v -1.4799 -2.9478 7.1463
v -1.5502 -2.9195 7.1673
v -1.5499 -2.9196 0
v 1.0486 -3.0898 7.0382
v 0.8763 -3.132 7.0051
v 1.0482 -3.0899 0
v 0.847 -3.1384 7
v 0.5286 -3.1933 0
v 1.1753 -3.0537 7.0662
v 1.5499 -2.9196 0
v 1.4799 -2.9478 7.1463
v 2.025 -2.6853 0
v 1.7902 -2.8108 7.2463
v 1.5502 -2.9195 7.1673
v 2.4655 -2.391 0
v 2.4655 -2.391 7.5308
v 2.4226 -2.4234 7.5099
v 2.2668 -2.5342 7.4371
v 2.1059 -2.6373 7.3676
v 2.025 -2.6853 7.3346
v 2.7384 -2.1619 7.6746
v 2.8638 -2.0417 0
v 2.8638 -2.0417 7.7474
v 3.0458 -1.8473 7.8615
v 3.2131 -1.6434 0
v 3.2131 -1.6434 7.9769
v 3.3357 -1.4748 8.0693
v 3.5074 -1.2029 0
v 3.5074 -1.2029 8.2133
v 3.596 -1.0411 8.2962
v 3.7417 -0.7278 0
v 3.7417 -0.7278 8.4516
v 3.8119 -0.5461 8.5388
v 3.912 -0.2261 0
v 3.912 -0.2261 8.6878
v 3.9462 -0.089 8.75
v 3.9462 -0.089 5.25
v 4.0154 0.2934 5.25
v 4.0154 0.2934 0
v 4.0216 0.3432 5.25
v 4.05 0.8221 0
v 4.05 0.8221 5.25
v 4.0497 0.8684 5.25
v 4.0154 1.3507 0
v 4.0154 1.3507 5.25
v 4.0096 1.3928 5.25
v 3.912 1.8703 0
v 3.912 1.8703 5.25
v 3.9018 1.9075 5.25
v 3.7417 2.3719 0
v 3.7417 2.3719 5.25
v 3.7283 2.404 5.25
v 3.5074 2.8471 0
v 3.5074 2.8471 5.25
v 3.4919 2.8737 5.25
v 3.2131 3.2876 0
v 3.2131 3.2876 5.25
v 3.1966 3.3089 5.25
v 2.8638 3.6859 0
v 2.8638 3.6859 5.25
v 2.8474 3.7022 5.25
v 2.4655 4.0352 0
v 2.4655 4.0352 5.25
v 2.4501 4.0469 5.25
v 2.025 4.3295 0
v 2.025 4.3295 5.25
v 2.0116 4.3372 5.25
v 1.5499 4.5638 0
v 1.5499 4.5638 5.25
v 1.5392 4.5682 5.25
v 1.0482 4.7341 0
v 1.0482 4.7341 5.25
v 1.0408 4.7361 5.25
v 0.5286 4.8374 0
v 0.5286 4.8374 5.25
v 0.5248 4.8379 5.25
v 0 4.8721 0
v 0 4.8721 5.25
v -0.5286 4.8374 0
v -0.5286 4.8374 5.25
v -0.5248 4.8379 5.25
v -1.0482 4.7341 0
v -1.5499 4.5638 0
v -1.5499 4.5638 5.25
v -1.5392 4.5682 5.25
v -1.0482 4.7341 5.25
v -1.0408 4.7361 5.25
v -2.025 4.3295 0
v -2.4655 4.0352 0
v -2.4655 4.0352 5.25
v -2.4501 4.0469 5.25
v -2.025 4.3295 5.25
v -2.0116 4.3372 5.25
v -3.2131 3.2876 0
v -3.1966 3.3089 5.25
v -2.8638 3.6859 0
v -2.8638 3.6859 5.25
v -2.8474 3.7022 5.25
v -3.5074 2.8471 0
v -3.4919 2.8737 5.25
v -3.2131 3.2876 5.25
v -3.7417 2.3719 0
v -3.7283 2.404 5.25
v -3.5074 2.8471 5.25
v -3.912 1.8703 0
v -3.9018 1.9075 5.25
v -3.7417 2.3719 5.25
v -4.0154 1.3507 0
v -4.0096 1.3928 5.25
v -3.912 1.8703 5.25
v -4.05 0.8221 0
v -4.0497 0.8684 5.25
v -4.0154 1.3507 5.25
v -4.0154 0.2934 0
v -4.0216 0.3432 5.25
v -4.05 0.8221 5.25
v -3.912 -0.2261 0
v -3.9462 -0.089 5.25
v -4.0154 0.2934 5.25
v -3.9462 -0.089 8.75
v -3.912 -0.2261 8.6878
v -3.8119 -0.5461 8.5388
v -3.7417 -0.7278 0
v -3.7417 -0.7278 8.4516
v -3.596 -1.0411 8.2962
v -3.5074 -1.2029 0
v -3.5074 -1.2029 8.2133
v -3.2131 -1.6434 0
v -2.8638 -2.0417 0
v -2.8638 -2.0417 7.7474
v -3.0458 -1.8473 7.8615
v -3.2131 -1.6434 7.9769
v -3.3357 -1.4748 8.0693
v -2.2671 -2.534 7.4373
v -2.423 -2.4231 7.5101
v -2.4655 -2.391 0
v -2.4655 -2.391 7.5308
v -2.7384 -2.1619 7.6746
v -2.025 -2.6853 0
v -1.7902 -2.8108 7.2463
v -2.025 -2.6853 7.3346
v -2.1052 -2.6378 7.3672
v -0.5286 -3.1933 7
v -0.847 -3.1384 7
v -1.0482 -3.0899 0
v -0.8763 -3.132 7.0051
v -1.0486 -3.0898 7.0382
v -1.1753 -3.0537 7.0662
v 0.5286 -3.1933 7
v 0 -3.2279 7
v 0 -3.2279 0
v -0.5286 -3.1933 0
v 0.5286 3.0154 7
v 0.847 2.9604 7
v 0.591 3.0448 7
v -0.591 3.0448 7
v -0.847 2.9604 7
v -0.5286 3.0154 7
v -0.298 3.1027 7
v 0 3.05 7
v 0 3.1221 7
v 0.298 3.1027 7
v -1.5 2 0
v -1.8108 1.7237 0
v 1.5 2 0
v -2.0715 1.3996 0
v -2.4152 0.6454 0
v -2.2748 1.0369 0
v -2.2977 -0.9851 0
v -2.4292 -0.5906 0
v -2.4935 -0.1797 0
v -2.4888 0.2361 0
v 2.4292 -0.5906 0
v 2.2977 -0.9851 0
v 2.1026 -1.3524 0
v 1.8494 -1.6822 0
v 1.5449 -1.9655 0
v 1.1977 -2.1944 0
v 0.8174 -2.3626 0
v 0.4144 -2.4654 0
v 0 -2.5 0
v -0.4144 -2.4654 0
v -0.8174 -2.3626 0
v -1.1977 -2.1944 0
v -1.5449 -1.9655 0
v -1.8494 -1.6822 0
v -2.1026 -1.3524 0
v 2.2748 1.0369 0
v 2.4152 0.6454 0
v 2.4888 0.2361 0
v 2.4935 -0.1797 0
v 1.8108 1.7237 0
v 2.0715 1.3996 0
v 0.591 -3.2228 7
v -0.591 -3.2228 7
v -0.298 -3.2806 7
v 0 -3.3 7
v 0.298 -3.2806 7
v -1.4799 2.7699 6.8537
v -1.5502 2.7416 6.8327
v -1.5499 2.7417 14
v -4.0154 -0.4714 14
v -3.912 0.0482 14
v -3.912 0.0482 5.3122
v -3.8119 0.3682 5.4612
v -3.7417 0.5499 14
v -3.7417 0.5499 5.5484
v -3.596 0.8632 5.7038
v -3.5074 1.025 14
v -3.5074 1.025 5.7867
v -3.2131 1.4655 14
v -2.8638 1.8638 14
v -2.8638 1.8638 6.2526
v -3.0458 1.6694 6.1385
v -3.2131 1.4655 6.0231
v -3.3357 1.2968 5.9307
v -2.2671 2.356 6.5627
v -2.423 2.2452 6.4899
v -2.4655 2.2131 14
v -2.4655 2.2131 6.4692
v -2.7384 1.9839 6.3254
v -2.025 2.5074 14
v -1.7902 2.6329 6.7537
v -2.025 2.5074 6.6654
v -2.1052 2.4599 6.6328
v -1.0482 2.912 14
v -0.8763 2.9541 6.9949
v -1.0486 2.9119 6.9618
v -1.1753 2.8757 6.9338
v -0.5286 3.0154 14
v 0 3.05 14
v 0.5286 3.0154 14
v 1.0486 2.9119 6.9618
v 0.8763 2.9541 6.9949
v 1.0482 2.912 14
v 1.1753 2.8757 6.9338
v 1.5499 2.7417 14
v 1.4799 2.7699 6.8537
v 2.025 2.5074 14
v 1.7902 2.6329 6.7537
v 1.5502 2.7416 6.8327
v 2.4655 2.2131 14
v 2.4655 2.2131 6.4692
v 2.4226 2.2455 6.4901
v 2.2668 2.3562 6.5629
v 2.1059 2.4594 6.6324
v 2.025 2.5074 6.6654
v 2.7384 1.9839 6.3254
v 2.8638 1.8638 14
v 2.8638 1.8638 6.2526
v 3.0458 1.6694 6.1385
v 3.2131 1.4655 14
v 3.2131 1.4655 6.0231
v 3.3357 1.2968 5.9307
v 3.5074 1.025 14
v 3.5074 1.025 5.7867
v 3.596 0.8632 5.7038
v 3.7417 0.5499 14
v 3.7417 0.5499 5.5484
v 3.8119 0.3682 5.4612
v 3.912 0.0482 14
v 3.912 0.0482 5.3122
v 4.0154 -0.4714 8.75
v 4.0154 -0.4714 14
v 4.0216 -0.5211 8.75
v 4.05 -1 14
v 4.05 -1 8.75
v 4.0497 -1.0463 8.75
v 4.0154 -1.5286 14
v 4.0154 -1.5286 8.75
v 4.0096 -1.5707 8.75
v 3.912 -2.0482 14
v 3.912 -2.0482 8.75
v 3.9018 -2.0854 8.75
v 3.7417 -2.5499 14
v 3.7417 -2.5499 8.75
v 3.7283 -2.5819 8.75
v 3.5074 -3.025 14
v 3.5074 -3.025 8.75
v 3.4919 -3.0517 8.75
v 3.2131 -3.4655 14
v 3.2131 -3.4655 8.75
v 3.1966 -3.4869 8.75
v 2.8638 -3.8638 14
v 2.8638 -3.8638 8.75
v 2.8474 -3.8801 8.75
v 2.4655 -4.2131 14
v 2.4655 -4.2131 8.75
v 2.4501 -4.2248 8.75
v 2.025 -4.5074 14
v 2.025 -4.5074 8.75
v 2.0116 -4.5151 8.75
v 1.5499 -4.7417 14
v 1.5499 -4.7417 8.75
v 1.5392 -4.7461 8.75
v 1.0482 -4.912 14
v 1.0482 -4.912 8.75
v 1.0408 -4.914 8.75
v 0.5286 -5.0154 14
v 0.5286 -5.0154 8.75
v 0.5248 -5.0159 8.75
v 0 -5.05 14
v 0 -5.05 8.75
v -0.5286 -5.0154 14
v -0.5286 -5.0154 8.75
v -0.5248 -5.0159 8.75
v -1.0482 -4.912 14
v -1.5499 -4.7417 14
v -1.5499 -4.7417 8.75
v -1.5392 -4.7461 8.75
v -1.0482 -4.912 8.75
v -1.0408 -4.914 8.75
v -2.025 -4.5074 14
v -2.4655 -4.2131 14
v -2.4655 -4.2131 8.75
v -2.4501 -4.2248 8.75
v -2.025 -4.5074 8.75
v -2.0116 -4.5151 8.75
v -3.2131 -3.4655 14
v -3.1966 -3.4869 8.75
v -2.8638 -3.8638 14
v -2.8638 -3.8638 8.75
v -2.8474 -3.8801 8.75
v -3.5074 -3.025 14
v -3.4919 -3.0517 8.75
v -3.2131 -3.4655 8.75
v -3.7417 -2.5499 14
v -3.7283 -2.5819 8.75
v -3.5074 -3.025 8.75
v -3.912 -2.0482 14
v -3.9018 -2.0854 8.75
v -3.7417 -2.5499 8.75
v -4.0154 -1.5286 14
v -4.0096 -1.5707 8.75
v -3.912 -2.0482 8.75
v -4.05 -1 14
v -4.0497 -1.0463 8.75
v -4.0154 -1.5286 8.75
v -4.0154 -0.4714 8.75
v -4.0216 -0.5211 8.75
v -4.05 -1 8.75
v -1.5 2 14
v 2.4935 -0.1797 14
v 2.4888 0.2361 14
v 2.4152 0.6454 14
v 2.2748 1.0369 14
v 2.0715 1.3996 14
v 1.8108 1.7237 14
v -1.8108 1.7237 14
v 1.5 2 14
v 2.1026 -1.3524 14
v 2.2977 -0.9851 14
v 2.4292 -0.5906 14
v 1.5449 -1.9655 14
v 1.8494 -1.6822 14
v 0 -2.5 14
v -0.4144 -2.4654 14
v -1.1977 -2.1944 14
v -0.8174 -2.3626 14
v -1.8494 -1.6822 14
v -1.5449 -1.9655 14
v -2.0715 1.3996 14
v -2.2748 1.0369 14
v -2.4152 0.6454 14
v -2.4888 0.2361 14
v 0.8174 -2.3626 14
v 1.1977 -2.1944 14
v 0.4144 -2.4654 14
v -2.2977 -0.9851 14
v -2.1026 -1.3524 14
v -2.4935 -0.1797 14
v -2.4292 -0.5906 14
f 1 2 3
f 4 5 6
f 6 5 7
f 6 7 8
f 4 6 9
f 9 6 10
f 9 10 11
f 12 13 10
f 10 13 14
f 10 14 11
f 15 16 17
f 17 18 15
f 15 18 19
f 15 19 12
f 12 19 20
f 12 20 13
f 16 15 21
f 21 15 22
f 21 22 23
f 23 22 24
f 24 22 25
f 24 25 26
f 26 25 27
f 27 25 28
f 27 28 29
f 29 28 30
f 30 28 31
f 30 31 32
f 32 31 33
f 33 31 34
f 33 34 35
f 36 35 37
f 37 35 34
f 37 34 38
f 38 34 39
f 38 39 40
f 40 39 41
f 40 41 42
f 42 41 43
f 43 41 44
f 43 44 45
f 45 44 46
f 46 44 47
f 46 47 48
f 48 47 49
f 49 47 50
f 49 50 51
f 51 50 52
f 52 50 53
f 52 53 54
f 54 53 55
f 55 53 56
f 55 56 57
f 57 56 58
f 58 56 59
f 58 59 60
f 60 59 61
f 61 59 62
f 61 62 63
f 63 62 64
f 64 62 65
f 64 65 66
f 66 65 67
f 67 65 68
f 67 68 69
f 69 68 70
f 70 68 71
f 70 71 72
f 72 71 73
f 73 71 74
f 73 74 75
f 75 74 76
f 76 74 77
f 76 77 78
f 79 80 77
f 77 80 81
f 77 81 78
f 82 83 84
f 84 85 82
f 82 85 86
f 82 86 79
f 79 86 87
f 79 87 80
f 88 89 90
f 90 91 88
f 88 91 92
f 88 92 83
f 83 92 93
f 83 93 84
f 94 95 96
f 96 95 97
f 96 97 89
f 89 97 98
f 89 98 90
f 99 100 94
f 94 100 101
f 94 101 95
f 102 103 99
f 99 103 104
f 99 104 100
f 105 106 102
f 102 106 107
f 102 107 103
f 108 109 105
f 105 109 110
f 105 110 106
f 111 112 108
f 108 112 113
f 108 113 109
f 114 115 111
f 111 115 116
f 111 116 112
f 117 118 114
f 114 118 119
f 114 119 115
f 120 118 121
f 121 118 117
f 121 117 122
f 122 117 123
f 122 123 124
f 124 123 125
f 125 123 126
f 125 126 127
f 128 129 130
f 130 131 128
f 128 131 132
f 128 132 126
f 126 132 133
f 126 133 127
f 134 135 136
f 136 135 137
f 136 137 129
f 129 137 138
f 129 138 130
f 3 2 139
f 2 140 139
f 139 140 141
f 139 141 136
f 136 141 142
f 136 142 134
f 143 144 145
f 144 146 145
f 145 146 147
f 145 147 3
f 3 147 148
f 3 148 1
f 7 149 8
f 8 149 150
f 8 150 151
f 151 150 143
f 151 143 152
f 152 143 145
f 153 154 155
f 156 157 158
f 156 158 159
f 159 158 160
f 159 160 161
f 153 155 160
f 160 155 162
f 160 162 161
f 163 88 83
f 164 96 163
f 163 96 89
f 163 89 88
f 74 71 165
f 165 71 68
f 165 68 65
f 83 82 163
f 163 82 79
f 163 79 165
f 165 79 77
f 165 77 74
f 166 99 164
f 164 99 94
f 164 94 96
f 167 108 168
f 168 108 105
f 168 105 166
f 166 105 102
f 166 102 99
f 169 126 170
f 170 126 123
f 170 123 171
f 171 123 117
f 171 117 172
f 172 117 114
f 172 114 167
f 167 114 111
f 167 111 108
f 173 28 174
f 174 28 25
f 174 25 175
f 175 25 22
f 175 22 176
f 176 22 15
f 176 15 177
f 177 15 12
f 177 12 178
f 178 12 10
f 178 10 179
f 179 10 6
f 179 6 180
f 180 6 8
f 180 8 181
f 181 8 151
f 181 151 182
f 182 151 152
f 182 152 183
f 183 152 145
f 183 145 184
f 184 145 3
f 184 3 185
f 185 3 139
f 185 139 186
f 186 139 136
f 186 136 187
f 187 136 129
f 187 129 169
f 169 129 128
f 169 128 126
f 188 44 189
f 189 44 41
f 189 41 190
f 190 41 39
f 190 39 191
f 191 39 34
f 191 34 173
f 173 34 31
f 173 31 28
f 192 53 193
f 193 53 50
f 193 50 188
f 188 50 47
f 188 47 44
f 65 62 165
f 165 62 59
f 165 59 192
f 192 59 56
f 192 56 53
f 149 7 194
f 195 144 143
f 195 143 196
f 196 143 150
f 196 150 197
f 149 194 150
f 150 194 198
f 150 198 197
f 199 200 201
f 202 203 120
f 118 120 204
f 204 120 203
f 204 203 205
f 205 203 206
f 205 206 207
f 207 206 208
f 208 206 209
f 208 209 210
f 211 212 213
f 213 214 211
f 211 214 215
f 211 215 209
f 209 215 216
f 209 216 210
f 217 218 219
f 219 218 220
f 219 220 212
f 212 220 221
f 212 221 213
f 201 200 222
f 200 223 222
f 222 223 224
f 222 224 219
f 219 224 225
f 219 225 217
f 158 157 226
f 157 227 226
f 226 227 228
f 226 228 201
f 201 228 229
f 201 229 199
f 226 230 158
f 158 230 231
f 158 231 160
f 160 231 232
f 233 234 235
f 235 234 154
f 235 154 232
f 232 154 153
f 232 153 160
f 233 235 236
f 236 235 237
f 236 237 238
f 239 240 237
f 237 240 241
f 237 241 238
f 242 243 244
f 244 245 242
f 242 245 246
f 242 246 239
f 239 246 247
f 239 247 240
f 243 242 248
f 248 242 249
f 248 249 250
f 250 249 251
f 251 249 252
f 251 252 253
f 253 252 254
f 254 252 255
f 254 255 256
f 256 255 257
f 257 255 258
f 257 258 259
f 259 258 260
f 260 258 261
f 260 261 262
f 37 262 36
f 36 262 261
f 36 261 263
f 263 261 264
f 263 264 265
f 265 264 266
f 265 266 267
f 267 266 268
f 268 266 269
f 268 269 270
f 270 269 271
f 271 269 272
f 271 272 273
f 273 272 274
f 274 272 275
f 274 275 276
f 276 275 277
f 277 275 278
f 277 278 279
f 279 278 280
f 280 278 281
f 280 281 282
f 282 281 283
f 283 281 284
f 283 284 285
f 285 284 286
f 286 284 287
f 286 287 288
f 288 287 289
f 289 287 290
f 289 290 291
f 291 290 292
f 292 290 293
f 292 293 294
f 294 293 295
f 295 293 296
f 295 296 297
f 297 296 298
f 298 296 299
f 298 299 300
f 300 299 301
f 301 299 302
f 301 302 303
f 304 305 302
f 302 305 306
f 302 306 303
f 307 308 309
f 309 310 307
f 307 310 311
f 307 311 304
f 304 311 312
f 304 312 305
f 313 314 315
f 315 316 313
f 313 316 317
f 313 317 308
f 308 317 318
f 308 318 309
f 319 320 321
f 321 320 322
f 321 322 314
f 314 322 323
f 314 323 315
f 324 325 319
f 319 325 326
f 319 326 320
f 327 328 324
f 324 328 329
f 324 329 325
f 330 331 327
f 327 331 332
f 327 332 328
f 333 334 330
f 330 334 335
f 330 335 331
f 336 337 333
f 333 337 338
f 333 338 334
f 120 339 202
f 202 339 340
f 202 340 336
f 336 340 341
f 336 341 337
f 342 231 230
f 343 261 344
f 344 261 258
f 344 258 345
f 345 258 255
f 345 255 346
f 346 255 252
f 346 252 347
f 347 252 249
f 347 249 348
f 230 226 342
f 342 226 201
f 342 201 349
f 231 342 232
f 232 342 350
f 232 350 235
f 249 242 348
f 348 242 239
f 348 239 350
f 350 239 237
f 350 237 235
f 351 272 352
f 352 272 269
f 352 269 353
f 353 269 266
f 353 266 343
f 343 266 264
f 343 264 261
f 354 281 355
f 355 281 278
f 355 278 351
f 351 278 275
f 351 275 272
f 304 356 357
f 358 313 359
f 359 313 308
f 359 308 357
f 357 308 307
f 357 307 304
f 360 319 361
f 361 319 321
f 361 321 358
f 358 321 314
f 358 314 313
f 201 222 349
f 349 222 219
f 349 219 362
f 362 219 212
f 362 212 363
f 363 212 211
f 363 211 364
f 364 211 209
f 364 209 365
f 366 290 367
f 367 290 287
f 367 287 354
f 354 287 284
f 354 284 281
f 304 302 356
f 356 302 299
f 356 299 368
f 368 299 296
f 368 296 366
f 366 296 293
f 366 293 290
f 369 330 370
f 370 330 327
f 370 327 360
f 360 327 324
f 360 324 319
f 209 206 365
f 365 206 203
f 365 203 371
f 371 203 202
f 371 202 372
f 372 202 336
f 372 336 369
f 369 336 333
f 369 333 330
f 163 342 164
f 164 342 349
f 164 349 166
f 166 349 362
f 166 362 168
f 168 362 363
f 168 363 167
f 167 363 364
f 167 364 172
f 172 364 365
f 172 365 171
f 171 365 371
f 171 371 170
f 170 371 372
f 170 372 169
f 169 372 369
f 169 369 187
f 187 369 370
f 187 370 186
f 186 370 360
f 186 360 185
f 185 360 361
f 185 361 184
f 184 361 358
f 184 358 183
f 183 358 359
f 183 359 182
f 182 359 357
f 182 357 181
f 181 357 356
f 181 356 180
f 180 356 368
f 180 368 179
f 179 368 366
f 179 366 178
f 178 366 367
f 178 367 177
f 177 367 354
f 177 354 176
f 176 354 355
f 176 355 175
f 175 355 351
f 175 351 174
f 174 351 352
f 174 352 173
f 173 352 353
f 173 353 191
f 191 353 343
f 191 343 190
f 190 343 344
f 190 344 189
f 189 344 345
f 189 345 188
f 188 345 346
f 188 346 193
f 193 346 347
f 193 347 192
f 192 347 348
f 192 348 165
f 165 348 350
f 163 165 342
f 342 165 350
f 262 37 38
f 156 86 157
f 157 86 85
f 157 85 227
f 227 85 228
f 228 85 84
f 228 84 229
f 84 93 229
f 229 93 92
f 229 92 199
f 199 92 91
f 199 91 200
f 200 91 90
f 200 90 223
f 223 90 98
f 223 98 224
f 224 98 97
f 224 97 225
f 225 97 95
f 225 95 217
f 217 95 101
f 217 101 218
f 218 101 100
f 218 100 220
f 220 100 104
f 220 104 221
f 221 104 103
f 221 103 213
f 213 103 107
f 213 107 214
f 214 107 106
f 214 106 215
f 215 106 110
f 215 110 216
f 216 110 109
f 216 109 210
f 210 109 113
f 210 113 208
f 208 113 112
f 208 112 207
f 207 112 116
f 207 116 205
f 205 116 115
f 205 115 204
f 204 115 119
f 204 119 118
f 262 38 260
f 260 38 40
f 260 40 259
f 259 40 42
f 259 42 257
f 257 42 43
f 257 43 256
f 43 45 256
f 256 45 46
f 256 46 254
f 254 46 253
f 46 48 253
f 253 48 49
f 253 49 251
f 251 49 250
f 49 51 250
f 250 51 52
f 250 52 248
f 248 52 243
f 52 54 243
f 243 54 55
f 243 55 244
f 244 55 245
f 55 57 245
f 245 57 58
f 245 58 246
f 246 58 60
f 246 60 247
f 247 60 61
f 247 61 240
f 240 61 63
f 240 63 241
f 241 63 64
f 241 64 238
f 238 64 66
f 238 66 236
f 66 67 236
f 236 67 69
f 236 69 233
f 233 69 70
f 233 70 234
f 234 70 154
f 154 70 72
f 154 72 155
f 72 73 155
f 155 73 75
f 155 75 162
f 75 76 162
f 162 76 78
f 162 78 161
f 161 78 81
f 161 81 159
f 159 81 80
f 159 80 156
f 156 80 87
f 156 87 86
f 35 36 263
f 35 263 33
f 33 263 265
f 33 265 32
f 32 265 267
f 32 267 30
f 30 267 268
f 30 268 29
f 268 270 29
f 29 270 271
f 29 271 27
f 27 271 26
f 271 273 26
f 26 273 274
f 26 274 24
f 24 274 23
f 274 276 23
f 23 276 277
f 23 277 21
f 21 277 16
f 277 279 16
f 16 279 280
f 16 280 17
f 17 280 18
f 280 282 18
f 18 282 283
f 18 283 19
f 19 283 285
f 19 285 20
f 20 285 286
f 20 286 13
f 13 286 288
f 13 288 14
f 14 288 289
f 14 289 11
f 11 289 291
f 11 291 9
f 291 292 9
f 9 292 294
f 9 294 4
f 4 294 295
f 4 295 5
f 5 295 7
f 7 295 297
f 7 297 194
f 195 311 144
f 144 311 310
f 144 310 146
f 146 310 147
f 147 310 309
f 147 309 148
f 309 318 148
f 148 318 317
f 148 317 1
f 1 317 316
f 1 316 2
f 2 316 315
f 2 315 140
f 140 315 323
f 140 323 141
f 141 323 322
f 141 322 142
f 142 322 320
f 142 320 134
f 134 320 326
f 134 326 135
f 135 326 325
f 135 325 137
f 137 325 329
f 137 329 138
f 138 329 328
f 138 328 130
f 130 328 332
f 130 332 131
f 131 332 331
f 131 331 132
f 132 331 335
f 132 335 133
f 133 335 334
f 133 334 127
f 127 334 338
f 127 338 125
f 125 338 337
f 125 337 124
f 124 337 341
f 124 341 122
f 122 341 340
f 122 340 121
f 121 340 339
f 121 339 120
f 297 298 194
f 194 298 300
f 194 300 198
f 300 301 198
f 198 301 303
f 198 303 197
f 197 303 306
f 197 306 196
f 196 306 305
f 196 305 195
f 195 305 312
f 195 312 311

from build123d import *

# Parameters (mm, degrees)
ESQUISSE1_R             = 4.05
BOSS_EXTRU_1_DEPTH      = 7
ESQUISSE2_R             = 4.05
BOSS_EXTRU_2_DEPTH      = 7
ENL_V_MAT_EXTRU_1_DEPTH = 16.424169346
CHANFREIN2_SIZE         = 1.75
CHANFREIN4_SIZE         = 1.75


with BuildPart() as part:
    # Esquisse1 → Boss.-Extru.1 (new body)
    with BuildSketch(Plane.XY):
        with Locations((0, 0.822072072)):
            Circle(ESQUISSE1_R)
    extrude(amount=BOSS_EXTRU_1_DEPTH)

    # Esquisse2 → Boss.-Extru.2 (add)
    with BuildSketch(Plane.XY.offset(7)):
        with Locations(Location((0, -1, 0), (0, 0, 167.000228446))):
            Circle(ESQUISSE2_R)
    extrude(amount=BOSS_EXTRU_2_DEPTH)

    # Esquisse3 → Enlèv. mat.-Extru.1 (cut, through all)
    with BuildSketch(Plane.XY.offset(14)):
        with BuildLine():
            Line((-1.5, 2), (1.5, 2))
            ThreePointArc((1.5, 2), (0, -2.5), (-1.5, 2))
        make_face()
    extrude(amount=-ENL_V_MAT_EXTRU_1_DEPTH, mode=Mode.SUBTRACT)

    # Chanfrein2
    # the kernel refuses this chamfer: 1.75 mm, written as the material it takes off along each edge
    with BuildSketch(Plane(origin=(0, 0.822072072, 7), x_dir=(1, 0, 0), z_dir=(0, -1, 0))) as chanfrein2_piece_1_section:
        Polygon((4.05, -CHANFREIN2_SIZE), (4.05 - CHANFREIN2_SIZE, 0), (4.05, 0), align=None)
    chanfrein2_piece_1 = revolve(axis=Axis((0, 0.822072072, 7), (0, 0, 1)), revolution_arc=256.785781501, mode=Mode.PRIVATE)
    chanfrein2_piece_1 = chanfrein2_piece_1 - Plane(origin=(0, -1, 6.142651894), x_dir=(-0.9743709616876816, 0.22494716939722223, 0), z_dir=(0, 0, -1)) * Cylinder(4.05, 17, mode=Mode.PRIVATE)
    add(chanfrein2_piece_1, mode=Mode.SUBTRACT)
    with BuildSketch(Plane(origin=(0, 0.822072072, 7), x_dir=(0.23058336065371998, -0.9730525750387985, 0), z_dir=(-0.9730525750387985, -0.23058336065371998, 0))) as chanfrein2_piece_2_section:
        Polygon((4.05, -CHANFREIN2_SIZE), (4.05 - CHANFREIN2_SIZE, 0), (4.05, 0), align=None)
    chanfrein2_piece_2 = revolve(axis=Axis((0, 0.822072072, 7), (0, 0, 1)), revolution_arc=76.66858095, mode=Mode.PRIVATE)
    chanfrein2_piece_2 = chanfrein2_piece_2 - Plane(origin=(0, -1, 6.19314211), x_dir=(-0.9743709616876816, 0.22494716939722223, 0), z_dir=(0, 0, -1)) * Cylinder(4.05, 17, mode=Mode.PRIVATE)
    add(chanfrein2_piece_2, mode=Mode.SUBTRACT)

    # Chanfrein4
    # the kernel refuses this chamfer: 1.75 mm, written as the material it takes off along each edge
    with BuildSketch(Plane(origin=(0, -1, 7), x_dir=(-0.22831348546058428, 0.9735876706064225, 0), z_dir=(0.9735876706064225, 0.22831348546058428, 0))) as chanfrein4_piece_1_section:
        Polygon((4.05 - CHANFREIN4_SIZE, 0), (4.05, CHANFREIN4_SIZE), (4.05, 0), align=None)
    chanfrein4_piece_1 = revolve(axis=Axis((0, -1, 7), (0, 0, 1)), revolution_arc=333.604400204, mode=Mode.PRIVATE)
    chanfrein4_piece_1 = chanfrein4_piece_1 - Plane(origin=(0, 0.822072072, 7.857230716), x_dir=(1, 0, 0), z_dir=(0, 0, -1)) * Cylinder(4.05, 17, mode=Mode.PRIVATE)
    add(chanfrein4_piece_1, mode=Mode.SUBTRACT)


solid = part.part
